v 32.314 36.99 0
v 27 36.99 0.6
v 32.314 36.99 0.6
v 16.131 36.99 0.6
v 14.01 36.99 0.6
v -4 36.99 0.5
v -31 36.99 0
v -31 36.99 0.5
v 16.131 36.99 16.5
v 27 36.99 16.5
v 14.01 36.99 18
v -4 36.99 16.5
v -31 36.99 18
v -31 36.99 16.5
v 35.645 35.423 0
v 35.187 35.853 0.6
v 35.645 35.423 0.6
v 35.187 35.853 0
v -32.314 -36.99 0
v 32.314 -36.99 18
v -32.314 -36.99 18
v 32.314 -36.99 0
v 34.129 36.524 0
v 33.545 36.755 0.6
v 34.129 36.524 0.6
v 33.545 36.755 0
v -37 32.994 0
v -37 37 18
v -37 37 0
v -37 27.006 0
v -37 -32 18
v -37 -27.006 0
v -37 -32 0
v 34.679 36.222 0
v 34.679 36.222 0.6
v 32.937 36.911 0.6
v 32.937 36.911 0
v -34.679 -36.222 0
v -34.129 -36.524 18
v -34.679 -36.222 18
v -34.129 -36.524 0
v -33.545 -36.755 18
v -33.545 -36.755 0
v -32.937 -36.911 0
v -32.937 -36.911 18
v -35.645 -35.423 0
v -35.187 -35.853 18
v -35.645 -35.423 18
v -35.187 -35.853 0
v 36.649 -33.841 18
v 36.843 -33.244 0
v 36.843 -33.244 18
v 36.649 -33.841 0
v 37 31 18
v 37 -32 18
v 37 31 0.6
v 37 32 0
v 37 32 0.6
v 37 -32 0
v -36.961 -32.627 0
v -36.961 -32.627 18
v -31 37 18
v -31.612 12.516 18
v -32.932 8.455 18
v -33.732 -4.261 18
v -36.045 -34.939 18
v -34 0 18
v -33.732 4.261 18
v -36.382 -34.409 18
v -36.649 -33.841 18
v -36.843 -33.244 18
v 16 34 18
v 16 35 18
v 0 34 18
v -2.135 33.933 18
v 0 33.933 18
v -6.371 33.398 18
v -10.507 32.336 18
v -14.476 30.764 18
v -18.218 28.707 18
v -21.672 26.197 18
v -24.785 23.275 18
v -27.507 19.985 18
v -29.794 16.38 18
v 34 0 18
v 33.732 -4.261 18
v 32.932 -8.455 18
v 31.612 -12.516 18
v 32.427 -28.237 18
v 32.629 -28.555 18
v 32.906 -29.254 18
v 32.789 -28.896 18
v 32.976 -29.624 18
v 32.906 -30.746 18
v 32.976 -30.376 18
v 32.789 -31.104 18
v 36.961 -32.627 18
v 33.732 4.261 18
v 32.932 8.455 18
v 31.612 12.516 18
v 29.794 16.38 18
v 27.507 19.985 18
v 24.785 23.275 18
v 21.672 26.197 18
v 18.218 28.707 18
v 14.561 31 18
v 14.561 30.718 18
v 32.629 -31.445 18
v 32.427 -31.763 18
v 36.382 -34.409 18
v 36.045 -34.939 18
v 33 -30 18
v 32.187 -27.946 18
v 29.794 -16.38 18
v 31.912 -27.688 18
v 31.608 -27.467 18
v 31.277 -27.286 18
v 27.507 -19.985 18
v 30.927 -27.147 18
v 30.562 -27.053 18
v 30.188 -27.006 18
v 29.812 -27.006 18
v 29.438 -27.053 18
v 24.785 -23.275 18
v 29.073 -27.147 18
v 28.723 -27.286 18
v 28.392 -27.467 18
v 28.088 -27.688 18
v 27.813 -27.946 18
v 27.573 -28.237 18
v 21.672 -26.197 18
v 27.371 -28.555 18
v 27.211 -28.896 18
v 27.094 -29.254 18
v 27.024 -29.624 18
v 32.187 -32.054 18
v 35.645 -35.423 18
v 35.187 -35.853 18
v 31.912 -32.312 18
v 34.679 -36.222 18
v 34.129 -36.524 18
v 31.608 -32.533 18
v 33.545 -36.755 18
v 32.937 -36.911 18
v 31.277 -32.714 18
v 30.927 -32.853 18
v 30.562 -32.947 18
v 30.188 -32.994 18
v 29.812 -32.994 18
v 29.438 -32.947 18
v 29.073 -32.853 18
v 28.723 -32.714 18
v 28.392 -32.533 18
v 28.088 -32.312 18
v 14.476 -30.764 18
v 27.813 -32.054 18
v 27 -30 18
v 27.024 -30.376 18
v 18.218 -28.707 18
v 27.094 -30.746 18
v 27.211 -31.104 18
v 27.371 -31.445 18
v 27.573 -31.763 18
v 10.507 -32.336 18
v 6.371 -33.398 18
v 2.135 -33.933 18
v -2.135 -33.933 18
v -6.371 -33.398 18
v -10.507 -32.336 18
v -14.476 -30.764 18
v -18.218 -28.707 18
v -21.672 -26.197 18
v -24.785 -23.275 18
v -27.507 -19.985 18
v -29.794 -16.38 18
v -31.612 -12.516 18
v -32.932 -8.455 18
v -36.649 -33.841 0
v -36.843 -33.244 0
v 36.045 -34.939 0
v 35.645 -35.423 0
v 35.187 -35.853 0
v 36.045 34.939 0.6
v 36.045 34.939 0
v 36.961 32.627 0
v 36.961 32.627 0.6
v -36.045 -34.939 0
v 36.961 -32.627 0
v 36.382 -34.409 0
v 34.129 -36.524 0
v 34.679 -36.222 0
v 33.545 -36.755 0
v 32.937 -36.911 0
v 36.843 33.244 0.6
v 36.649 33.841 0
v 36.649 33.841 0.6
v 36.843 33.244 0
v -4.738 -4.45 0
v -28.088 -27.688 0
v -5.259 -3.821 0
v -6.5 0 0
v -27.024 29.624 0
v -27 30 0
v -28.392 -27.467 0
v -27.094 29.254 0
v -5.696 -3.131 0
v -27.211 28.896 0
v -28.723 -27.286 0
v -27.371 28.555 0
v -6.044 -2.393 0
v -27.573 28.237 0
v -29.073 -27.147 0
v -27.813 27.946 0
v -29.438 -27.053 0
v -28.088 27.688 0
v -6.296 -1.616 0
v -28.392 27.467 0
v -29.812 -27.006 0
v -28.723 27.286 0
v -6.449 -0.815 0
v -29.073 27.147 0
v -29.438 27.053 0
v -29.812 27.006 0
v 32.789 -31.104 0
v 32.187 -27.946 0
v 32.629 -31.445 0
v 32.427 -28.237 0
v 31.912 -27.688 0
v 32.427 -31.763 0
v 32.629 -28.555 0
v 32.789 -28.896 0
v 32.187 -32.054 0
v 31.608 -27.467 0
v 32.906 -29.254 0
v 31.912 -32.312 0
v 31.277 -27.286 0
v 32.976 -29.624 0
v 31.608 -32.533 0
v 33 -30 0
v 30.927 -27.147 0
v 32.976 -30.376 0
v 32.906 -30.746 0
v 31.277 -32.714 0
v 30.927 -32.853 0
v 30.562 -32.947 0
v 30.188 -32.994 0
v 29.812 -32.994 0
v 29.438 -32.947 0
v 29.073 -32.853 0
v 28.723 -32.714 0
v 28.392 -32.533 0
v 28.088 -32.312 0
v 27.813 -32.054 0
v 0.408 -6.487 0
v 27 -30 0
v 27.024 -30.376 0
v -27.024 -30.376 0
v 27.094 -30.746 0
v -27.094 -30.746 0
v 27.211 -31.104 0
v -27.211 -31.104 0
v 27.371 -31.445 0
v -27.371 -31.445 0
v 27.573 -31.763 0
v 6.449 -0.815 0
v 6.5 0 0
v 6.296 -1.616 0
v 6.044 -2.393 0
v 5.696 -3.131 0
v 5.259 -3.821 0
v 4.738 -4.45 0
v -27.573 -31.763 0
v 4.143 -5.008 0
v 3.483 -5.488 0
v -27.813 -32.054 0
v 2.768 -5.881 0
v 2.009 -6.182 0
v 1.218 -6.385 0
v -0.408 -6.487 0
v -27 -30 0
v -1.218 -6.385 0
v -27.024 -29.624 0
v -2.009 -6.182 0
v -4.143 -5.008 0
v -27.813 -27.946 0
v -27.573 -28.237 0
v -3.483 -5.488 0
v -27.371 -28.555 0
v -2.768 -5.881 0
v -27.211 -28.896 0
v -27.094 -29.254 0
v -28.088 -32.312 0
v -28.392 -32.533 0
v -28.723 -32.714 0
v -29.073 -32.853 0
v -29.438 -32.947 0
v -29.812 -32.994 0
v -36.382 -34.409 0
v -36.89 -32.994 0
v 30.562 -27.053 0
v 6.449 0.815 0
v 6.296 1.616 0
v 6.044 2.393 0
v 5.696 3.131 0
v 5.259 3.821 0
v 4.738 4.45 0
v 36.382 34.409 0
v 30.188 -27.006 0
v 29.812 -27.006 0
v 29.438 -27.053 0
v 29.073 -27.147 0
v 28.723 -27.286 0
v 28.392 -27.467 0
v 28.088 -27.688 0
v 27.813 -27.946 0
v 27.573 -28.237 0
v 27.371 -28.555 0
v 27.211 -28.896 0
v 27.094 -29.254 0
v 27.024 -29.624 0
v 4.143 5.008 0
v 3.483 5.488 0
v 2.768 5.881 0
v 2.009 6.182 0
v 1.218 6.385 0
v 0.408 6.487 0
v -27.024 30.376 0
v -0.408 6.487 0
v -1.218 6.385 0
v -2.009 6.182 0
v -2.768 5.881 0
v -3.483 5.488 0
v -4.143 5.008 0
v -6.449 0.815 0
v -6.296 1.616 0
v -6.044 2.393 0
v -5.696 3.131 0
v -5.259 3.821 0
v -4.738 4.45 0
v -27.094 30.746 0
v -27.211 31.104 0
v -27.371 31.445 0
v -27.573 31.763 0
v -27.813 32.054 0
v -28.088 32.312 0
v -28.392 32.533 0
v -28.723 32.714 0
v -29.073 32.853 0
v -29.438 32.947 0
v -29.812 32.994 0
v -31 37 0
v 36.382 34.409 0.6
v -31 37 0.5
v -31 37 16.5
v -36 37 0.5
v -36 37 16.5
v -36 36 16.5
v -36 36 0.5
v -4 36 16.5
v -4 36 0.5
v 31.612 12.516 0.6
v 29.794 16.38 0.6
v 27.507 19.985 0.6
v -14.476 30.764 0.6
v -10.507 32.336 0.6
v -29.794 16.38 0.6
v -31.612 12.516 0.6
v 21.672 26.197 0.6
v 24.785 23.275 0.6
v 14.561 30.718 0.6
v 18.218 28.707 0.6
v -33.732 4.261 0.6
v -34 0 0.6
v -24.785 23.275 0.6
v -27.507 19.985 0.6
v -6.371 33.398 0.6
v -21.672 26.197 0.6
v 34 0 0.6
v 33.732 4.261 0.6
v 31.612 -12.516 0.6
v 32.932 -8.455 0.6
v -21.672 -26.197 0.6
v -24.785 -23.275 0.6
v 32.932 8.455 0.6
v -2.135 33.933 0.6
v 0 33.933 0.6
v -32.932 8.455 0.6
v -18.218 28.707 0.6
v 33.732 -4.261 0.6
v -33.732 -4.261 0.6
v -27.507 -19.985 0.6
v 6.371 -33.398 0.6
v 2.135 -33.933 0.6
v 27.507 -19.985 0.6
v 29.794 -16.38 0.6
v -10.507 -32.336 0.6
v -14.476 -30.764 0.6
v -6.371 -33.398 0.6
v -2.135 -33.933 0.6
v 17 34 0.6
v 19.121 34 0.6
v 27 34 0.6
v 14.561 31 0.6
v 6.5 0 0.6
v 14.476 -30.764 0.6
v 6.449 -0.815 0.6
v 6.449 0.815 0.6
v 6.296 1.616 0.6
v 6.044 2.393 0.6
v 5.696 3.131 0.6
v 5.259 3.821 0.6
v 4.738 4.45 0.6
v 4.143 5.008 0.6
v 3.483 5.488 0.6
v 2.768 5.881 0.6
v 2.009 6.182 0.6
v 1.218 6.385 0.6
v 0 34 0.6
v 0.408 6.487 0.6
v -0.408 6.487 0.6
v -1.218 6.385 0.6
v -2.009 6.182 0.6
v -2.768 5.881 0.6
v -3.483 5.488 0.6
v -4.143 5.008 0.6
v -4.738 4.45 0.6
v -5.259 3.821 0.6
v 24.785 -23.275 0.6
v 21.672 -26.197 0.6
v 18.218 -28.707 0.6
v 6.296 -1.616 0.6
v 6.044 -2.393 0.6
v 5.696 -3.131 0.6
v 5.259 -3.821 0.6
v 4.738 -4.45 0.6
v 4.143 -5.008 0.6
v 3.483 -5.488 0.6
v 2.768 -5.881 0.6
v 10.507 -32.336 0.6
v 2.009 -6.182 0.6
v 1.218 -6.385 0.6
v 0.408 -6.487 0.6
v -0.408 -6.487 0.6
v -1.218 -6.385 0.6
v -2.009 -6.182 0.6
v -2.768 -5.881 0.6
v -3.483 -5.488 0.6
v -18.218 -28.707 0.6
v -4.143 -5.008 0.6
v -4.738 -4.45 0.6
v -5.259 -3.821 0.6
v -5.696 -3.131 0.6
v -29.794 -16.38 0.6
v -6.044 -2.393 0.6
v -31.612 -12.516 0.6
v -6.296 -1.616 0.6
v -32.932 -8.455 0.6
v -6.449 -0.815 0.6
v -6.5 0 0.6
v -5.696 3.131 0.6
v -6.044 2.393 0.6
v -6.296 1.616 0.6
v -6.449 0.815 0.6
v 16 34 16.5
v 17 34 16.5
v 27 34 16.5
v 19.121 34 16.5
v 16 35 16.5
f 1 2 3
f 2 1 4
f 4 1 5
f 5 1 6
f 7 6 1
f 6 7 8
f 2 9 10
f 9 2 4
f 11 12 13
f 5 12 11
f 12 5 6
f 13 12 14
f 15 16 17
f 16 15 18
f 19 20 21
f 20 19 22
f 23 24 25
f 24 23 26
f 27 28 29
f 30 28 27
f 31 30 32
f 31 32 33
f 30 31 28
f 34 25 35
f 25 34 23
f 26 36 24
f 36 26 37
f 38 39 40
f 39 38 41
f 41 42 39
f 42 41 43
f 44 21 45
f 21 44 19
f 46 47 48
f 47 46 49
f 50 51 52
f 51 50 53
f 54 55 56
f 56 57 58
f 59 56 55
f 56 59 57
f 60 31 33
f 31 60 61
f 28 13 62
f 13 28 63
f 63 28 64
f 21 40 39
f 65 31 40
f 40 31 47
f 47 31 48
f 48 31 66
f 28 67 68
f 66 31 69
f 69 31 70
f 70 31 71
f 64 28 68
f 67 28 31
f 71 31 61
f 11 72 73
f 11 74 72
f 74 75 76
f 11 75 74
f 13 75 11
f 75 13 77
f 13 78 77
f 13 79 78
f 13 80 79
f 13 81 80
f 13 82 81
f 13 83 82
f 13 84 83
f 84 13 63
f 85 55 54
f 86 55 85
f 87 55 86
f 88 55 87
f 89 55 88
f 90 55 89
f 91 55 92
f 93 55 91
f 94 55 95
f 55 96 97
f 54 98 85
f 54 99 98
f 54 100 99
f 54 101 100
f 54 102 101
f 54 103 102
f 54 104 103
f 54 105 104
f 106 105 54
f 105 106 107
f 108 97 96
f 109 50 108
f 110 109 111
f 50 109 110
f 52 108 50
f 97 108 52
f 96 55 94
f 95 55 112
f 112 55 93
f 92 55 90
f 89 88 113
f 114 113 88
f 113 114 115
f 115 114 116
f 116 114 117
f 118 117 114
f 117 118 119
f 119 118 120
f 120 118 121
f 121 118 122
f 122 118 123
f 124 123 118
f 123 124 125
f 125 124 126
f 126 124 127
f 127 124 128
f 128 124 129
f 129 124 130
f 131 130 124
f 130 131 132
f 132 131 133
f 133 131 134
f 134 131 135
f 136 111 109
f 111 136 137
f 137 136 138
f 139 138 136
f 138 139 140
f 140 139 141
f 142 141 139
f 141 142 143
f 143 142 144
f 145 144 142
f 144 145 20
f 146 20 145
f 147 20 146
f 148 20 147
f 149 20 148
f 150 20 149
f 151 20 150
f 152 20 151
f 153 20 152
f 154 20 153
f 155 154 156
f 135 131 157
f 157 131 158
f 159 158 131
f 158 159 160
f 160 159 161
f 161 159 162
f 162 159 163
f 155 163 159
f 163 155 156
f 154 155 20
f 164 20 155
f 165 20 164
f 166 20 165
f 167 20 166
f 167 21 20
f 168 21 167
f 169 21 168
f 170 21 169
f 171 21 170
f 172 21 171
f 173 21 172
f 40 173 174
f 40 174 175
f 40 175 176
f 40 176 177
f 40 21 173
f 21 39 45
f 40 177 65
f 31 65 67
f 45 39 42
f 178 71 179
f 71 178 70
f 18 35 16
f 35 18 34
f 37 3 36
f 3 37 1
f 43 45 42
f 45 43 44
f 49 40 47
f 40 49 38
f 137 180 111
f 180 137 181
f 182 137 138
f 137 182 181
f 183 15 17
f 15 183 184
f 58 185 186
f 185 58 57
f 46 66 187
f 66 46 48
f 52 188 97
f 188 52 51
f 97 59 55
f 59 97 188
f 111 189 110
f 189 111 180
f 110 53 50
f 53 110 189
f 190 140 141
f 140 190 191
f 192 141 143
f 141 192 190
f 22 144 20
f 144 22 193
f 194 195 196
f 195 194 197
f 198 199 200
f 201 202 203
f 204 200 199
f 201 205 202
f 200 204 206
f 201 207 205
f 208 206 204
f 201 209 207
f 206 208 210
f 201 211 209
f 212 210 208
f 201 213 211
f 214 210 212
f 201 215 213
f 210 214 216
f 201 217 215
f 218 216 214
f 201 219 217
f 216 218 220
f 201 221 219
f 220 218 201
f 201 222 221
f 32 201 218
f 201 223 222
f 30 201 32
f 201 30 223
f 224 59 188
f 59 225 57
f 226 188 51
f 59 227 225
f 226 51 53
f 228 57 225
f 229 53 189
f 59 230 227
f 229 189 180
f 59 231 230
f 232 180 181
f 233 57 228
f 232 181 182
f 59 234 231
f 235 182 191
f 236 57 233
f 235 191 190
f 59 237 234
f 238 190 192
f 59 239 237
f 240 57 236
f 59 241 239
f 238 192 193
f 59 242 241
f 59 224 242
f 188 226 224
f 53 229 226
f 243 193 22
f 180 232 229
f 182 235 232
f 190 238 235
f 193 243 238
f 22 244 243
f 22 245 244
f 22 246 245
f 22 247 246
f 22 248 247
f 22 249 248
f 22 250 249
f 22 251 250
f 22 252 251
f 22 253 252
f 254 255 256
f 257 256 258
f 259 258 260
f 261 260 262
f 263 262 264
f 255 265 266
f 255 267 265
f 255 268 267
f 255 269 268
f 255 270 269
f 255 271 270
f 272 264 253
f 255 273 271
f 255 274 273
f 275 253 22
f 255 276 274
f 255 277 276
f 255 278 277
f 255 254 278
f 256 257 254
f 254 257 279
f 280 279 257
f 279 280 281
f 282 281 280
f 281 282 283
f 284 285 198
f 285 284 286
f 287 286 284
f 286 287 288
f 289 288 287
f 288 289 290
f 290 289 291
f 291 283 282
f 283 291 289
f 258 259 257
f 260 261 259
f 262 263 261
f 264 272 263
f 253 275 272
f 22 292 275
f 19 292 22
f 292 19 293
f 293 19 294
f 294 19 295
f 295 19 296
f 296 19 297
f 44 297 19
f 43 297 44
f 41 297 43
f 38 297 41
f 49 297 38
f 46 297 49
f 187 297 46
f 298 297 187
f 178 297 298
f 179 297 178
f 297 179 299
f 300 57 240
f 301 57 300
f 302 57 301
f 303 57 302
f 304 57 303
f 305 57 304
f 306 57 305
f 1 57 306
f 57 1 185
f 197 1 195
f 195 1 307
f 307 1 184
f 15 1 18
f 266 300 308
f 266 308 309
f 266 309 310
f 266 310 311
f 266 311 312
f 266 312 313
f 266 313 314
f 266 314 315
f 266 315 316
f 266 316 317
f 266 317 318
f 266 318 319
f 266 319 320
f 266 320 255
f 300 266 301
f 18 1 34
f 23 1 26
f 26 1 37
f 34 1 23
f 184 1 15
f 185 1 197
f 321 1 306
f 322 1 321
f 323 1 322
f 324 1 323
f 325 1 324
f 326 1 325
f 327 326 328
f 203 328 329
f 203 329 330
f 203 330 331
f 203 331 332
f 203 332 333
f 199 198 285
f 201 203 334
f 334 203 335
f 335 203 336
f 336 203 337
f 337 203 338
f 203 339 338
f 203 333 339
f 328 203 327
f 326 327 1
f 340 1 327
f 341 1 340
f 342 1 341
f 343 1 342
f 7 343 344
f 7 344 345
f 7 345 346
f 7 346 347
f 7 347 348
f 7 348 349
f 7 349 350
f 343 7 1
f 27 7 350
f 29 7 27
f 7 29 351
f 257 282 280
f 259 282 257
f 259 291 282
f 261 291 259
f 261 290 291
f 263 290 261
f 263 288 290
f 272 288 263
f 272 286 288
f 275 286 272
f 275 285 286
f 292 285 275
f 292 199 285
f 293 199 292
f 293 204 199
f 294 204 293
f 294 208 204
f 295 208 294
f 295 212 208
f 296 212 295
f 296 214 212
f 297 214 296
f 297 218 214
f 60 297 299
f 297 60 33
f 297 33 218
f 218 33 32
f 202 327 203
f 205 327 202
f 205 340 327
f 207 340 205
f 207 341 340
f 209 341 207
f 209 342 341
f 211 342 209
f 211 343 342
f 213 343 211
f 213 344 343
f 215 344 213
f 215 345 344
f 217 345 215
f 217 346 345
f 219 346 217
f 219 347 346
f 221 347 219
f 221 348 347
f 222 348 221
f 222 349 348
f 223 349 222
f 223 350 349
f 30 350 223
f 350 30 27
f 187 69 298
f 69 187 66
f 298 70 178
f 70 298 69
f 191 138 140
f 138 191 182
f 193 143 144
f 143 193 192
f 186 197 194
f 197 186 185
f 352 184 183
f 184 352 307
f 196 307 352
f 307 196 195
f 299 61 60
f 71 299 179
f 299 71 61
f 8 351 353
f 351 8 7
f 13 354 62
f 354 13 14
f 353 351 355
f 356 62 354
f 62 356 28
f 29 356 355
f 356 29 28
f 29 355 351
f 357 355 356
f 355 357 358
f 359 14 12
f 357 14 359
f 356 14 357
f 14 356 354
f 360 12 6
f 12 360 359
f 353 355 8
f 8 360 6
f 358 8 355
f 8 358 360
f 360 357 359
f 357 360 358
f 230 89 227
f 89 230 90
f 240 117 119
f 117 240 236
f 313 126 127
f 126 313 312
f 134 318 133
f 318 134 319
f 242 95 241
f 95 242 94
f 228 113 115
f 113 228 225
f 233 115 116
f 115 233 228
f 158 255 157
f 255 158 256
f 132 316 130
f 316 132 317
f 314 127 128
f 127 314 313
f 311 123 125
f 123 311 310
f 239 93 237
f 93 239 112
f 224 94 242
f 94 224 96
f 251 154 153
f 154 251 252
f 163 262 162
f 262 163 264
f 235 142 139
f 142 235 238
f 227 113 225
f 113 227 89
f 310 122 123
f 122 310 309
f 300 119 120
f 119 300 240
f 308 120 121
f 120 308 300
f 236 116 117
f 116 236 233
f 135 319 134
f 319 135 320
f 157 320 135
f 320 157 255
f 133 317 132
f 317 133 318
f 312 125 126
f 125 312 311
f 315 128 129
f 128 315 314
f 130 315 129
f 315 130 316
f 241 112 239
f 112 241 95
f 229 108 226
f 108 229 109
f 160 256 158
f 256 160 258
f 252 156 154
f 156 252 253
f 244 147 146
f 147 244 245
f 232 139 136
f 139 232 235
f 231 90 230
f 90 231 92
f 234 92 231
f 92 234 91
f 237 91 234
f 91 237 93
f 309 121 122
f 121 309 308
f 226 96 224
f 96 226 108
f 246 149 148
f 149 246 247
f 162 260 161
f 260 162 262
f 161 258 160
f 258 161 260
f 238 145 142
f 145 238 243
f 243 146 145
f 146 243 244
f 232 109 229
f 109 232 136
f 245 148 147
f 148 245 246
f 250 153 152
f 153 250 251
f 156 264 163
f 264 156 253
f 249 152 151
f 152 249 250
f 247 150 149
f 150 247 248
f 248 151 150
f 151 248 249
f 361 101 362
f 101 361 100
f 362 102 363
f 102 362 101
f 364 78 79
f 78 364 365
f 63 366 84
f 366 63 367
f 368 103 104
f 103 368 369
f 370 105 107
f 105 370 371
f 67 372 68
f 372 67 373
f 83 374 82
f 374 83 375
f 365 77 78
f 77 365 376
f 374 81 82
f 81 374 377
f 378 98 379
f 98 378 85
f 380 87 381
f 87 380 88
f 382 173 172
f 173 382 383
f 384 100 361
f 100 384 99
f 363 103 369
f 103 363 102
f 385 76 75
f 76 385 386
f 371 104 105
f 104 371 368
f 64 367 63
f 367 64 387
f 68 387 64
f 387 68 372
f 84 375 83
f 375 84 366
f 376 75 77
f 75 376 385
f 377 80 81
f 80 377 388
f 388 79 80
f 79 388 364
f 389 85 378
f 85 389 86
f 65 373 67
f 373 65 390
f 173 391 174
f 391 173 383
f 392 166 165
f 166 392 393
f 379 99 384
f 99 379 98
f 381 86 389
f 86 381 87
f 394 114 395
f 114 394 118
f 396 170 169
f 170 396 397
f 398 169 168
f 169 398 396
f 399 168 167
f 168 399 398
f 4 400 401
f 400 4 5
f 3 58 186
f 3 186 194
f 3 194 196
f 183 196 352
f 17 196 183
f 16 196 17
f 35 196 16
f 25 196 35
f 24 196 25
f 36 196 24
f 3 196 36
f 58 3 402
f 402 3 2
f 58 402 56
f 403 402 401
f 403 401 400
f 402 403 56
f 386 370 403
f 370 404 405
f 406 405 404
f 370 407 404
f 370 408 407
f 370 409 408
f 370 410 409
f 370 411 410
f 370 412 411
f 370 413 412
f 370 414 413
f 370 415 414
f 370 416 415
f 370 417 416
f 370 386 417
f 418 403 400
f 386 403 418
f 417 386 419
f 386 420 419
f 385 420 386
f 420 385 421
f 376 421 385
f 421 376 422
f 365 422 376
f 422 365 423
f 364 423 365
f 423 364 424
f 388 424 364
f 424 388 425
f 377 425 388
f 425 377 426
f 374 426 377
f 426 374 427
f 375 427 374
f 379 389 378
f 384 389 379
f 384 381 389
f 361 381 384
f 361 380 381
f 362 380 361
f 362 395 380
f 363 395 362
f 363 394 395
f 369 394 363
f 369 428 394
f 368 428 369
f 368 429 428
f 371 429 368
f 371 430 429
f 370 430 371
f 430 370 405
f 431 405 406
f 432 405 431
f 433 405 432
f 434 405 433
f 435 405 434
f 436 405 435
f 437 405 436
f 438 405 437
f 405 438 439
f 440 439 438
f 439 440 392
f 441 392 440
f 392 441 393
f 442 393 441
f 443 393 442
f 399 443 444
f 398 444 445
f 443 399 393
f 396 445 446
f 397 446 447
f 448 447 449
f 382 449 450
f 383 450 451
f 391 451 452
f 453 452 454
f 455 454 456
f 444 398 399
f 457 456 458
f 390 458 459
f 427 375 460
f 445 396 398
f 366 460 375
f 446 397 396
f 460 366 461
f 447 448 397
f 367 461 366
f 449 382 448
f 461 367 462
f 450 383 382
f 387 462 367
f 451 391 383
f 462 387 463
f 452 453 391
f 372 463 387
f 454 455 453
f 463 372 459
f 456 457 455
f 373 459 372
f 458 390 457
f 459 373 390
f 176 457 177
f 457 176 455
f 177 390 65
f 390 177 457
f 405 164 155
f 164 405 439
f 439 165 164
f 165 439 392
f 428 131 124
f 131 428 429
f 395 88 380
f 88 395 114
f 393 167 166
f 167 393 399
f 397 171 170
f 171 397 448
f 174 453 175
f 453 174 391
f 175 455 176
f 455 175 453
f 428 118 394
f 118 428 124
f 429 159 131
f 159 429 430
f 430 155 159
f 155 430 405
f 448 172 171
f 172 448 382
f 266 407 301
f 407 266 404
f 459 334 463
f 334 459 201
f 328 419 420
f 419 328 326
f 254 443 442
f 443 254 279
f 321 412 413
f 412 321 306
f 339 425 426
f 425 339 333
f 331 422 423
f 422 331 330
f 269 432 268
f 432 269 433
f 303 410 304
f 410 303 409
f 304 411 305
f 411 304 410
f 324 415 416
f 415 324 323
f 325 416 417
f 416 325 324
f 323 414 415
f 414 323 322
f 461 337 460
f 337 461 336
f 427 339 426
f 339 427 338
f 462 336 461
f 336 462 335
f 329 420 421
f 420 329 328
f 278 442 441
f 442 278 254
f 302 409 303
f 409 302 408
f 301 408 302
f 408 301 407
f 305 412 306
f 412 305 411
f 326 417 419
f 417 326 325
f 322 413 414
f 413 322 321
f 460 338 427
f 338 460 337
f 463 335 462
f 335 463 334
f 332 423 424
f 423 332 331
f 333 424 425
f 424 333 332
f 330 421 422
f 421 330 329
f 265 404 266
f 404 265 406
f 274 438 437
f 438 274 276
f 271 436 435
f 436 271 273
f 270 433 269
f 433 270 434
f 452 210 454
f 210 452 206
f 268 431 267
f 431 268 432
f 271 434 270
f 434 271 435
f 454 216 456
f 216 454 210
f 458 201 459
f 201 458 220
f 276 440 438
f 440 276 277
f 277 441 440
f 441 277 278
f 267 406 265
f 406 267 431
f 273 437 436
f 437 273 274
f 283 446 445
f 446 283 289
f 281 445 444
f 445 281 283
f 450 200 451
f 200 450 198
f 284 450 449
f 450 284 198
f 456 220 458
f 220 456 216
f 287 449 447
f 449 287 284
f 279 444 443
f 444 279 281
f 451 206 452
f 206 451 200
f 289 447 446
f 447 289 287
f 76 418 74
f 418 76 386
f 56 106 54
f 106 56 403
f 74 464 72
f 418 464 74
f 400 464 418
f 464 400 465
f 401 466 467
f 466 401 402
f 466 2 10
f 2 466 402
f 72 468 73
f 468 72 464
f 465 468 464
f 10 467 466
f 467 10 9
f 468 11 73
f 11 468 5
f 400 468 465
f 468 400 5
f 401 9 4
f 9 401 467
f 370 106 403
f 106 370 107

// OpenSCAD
$fn = 50;


difference() {
	union() {
		hull() {
			translate(v = [-32.0000000000, 32.0000000000, 0]) {
				cylinder(h = 18, r = 5);
			}
			translate(v = [32.0000000000, 32.0000000000, 0]) {
				cylinder(h = 18, r = 5);
			}
			translate(v = [-32.0000000000, -32.0000000000, 0]) {
				cylinder(h = 18, r = 5);
			}
			translate(v = [32.0000000000, -32.0000000000, 0]) {
				cylinder(h = 18, r = 5);
			}
		}
		translate(v = [-37.0000000000, 31.0000000000, 0]) {
			cube(size = [6, 6, 18]);
		}
	}
	union() {
		translate(v = [-37.5000000000, -30.0000000000, -250.0000000000]) {
			rotate(a = [0, 0, 0]) {
				difference() {
					union() {
						hull() {
							translate(v = [7.5000000000, 0, 0]) {
								cylinder(h = 250, r = 3.0000000000, r1 = 3.0000000000, r2 = 3.0000000000);
							}
							translate(v = [-7.5000000000, 0, 0]) {
								cylinder(h = 250, r = 3.0000000000, r1 = 3.0000000000, r2 = 3.0000000000);
							}
						}
					}
					union();
				}
			}
		}
		translate(v = [-37.5000000000, 30.0000000000, -250.0000000000]) {
			rotate(a = [0, 0, 0]) {
				difference() {
					union() {
						hull() {
							translate(v = [7.5000000000, 0, 0]) {
								cylinder(h = 250, r = 3.0000000000, r1 = 3.0000000000, r2 = 3.0000000000);
							}
							translate(v = [-7.5000000000, 0, 0]) {
								cylinder(h = 250, r = 3.0000000000, r1 = 3.0000000000, r2 = 3.0000000000);
							}
						}
					}
					union();
				}
			}
		}
		translate(v = [-36.0000000000, 36.0000000000, 0.5000000000]) {
			cube(size = [32, 1, 16]);
		}
		translate(v = [30.0000000000, -30.0000000000, -50.0000000000]) {
			cylinder(h = 100, r = 3.0000000000);
		}
		translate(v = [0, 0, 0.6000000000]) {
			cylinder(h = 20.4000000000, r = 34.0000000000);
		}
		translate(v = [0, 0, -9.0000000000]) {
			cylinder(h = 18, r = 6.5000000000);
		}
		translate(v = [0.0000000000, 31.0000000000, 0.6000000000]) {
			cube(size = [37.0000000000, 3, 20.4000000000]);
		}
		translate(v = [27.0000000000, 31.0000000000, 0.6000000000]) {
			cube(size = [10, 6, 20.4000000000]);
		}
		translate(v = [16.0000000000, 31.0000000000, 16.5000000000]) {
			cube(size = [21, 6, 1.5000000000]);
		}
		translate(v = [13.2500000000, 37.7500000000, 0.6000000000]) {
			rotate(a = [0, 0, -45]) {
				cube(size = [7.5000000000, 1.5000000000, 20.4000000000]);
			}
		}
		translate(v = [7.0610000000, 29.0000000000, 0.6000000000]) {
			cube(size = [7.5000000000, 2, 17.4000000000]);
		}
	}
}
